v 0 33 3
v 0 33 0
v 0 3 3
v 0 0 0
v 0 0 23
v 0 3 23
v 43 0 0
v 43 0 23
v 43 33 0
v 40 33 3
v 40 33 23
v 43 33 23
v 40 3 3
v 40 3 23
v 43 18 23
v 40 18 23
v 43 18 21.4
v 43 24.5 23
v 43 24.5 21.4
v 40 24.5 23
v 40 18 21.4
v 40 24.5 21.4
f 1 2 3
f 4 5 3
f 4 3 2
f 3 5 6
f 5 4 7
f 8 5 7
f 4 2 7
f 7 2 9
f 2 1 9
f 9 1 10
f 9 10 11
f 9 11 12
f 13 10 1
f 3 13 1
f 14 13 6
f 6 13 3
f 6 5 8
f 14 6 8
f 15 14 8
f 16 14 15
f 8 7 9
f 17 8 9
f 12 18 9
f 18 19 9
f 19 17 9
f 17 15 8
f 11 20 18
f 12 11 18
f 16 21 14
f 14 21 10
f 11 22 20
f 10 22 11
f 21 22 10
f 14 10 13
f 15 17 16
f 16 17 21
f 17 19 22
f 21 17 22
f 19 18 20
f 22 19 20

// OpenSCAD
dht_height  =   25.1    ;
dht_body_h  =   20      ;
dht_width   =   15.1    ;
dht_length  =   7.7     ;
dht_hole_d  =   3.4     ;

wall_thickness = 3         ;
wall_width = 43			;
wall_height = 33		;
wall_depth = 23			;

difference(){
    walls();
    translate([dht_height+2,dht_width + wall_thickness + 2.5 ,wall_thickness])
        rotate([90,0,270])
            #fake_dht();
}

module walls(){
    difference(){
        cube([wall_width,wall_height, wall_depth]);
        translate([-wall_thickness,wall_thickness,wall_thickness])
            cube([wall_width,wall_height, wall_depth]);
		translate([0,wall_depth - 5,wall_depth - 1.6])
			cube ([50,6.5,10]);
    }
    
}

module fake_dht(){
    cube ([dht_width, dht_length, dht_body_h]);
    //difference(){
        cube ([dht_width, 1, dht_height]);
    //    translate([dht_width/2,1.5,dht_height - (dht_height - dht_body_h)/2])
    //        rotate([90,0,0])
    //            cylinder(r=dht_hole_d/2, h = 10, $fn=20);
    //}
}
